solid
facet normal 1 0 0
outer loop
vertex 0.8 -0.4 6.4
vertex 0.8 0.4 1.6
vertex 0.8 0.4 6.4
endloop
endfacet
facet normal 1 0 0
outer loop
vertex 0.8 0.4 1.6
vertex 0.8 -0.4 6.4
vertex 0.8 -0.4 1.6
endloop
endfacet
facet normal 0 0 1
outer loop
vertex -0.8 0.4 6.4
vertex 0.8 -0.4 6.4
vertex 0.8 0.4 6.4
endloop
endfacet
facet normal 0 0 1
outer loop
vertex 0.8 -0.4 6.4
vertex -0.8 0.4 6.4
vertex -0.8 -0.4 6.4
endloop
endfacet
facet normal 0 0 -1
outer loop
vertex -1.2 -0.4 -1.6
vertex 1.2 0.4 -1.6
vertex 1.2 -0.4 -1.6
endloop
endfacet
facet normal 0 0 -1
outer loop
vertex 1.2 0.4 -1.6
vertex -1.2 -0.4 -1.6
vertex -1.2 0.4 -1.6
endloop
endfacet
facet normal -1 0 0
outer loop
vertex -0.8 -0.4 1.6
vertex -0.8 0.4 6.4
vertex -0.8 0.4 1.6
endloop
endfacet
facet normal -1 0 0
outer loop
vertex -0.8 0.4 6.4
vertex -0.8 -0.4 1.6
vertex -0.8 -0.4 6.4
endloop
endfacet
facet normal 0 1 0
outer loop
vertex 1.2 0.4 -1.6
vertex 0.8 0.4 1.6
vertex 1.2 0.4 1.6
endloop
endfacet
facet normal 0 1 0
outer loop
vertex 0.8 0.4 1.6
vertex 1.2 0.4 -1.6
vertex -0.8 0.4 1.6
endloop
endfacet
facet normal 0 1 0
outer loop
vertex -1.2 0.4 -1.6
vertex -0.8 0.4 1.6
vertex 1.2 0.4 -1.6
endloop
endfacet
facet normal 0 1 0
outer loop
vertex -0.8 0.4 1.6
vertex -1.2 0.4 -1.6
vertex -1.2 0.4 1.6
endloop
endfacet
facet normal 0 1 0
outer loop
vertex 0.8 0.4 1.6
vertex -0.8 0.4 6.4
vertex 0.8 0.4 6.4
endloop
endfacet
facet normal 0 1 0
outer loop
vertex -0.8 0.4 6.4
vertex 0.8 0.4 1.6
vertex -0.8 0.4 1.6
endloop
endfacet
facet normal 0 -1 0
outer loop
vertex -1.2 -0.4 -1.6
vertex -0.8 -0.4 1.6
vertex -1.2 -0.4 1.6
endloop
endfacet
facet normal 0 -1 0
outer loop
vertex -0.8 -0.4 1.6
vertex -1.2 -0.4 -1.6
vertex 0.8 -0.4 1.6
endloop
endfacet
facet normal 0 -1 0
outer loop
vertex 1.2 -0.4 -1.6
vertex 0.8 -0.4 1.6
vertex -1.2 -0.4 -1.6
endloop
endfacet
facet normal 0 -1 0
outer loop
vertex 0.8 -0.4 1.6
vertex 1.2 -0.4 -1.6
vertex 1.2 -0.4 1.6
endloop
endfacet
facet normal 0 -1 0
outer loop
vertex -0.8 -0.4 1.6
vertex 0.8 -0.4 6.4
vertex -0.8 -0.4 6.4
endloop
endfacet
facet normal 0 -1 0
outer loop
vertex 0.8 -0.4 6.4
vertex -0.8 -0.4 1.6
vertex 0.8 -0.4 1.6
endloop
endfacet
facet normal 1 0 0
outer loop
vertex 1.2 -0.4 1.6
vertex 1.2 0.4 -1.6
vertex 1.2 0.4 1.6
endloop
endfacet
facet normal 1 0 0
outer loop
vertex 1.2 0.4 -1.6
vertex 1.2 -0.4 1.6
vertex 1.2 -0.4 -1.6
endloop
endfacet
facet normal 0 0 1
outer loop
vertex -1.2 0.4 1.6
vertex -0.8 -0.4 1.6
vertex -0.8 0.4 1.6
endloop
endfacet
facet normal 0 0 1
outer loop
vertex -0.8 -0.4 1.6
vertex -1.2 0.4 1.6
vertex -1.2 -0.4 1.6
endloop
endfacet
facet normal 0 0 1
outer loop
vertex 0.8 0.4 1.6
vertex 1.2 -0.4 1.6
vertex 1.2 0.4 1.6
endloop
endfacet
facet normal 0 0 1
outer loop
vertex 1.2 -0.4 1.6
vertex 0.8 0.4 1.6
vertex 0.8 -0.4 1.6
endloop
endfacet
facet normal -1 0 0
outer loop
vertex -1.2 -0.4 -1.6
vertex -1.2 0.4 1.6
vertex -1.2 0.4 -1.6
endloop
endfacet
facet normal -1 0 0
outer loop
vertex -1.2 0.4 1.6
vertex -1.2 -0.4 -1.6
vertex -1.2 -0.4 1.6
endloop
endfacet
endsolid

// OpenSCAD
size=32; //block=32 //item=8


translate([0,0,size*0.075]){

cube([size*0.05,size*0.025,size*0.25],center=true);

translate([0,0,-size*0.075]){
cube([size*0.075,size*0.025,size*0.1],center=true);
};	//translate

};	//translate
